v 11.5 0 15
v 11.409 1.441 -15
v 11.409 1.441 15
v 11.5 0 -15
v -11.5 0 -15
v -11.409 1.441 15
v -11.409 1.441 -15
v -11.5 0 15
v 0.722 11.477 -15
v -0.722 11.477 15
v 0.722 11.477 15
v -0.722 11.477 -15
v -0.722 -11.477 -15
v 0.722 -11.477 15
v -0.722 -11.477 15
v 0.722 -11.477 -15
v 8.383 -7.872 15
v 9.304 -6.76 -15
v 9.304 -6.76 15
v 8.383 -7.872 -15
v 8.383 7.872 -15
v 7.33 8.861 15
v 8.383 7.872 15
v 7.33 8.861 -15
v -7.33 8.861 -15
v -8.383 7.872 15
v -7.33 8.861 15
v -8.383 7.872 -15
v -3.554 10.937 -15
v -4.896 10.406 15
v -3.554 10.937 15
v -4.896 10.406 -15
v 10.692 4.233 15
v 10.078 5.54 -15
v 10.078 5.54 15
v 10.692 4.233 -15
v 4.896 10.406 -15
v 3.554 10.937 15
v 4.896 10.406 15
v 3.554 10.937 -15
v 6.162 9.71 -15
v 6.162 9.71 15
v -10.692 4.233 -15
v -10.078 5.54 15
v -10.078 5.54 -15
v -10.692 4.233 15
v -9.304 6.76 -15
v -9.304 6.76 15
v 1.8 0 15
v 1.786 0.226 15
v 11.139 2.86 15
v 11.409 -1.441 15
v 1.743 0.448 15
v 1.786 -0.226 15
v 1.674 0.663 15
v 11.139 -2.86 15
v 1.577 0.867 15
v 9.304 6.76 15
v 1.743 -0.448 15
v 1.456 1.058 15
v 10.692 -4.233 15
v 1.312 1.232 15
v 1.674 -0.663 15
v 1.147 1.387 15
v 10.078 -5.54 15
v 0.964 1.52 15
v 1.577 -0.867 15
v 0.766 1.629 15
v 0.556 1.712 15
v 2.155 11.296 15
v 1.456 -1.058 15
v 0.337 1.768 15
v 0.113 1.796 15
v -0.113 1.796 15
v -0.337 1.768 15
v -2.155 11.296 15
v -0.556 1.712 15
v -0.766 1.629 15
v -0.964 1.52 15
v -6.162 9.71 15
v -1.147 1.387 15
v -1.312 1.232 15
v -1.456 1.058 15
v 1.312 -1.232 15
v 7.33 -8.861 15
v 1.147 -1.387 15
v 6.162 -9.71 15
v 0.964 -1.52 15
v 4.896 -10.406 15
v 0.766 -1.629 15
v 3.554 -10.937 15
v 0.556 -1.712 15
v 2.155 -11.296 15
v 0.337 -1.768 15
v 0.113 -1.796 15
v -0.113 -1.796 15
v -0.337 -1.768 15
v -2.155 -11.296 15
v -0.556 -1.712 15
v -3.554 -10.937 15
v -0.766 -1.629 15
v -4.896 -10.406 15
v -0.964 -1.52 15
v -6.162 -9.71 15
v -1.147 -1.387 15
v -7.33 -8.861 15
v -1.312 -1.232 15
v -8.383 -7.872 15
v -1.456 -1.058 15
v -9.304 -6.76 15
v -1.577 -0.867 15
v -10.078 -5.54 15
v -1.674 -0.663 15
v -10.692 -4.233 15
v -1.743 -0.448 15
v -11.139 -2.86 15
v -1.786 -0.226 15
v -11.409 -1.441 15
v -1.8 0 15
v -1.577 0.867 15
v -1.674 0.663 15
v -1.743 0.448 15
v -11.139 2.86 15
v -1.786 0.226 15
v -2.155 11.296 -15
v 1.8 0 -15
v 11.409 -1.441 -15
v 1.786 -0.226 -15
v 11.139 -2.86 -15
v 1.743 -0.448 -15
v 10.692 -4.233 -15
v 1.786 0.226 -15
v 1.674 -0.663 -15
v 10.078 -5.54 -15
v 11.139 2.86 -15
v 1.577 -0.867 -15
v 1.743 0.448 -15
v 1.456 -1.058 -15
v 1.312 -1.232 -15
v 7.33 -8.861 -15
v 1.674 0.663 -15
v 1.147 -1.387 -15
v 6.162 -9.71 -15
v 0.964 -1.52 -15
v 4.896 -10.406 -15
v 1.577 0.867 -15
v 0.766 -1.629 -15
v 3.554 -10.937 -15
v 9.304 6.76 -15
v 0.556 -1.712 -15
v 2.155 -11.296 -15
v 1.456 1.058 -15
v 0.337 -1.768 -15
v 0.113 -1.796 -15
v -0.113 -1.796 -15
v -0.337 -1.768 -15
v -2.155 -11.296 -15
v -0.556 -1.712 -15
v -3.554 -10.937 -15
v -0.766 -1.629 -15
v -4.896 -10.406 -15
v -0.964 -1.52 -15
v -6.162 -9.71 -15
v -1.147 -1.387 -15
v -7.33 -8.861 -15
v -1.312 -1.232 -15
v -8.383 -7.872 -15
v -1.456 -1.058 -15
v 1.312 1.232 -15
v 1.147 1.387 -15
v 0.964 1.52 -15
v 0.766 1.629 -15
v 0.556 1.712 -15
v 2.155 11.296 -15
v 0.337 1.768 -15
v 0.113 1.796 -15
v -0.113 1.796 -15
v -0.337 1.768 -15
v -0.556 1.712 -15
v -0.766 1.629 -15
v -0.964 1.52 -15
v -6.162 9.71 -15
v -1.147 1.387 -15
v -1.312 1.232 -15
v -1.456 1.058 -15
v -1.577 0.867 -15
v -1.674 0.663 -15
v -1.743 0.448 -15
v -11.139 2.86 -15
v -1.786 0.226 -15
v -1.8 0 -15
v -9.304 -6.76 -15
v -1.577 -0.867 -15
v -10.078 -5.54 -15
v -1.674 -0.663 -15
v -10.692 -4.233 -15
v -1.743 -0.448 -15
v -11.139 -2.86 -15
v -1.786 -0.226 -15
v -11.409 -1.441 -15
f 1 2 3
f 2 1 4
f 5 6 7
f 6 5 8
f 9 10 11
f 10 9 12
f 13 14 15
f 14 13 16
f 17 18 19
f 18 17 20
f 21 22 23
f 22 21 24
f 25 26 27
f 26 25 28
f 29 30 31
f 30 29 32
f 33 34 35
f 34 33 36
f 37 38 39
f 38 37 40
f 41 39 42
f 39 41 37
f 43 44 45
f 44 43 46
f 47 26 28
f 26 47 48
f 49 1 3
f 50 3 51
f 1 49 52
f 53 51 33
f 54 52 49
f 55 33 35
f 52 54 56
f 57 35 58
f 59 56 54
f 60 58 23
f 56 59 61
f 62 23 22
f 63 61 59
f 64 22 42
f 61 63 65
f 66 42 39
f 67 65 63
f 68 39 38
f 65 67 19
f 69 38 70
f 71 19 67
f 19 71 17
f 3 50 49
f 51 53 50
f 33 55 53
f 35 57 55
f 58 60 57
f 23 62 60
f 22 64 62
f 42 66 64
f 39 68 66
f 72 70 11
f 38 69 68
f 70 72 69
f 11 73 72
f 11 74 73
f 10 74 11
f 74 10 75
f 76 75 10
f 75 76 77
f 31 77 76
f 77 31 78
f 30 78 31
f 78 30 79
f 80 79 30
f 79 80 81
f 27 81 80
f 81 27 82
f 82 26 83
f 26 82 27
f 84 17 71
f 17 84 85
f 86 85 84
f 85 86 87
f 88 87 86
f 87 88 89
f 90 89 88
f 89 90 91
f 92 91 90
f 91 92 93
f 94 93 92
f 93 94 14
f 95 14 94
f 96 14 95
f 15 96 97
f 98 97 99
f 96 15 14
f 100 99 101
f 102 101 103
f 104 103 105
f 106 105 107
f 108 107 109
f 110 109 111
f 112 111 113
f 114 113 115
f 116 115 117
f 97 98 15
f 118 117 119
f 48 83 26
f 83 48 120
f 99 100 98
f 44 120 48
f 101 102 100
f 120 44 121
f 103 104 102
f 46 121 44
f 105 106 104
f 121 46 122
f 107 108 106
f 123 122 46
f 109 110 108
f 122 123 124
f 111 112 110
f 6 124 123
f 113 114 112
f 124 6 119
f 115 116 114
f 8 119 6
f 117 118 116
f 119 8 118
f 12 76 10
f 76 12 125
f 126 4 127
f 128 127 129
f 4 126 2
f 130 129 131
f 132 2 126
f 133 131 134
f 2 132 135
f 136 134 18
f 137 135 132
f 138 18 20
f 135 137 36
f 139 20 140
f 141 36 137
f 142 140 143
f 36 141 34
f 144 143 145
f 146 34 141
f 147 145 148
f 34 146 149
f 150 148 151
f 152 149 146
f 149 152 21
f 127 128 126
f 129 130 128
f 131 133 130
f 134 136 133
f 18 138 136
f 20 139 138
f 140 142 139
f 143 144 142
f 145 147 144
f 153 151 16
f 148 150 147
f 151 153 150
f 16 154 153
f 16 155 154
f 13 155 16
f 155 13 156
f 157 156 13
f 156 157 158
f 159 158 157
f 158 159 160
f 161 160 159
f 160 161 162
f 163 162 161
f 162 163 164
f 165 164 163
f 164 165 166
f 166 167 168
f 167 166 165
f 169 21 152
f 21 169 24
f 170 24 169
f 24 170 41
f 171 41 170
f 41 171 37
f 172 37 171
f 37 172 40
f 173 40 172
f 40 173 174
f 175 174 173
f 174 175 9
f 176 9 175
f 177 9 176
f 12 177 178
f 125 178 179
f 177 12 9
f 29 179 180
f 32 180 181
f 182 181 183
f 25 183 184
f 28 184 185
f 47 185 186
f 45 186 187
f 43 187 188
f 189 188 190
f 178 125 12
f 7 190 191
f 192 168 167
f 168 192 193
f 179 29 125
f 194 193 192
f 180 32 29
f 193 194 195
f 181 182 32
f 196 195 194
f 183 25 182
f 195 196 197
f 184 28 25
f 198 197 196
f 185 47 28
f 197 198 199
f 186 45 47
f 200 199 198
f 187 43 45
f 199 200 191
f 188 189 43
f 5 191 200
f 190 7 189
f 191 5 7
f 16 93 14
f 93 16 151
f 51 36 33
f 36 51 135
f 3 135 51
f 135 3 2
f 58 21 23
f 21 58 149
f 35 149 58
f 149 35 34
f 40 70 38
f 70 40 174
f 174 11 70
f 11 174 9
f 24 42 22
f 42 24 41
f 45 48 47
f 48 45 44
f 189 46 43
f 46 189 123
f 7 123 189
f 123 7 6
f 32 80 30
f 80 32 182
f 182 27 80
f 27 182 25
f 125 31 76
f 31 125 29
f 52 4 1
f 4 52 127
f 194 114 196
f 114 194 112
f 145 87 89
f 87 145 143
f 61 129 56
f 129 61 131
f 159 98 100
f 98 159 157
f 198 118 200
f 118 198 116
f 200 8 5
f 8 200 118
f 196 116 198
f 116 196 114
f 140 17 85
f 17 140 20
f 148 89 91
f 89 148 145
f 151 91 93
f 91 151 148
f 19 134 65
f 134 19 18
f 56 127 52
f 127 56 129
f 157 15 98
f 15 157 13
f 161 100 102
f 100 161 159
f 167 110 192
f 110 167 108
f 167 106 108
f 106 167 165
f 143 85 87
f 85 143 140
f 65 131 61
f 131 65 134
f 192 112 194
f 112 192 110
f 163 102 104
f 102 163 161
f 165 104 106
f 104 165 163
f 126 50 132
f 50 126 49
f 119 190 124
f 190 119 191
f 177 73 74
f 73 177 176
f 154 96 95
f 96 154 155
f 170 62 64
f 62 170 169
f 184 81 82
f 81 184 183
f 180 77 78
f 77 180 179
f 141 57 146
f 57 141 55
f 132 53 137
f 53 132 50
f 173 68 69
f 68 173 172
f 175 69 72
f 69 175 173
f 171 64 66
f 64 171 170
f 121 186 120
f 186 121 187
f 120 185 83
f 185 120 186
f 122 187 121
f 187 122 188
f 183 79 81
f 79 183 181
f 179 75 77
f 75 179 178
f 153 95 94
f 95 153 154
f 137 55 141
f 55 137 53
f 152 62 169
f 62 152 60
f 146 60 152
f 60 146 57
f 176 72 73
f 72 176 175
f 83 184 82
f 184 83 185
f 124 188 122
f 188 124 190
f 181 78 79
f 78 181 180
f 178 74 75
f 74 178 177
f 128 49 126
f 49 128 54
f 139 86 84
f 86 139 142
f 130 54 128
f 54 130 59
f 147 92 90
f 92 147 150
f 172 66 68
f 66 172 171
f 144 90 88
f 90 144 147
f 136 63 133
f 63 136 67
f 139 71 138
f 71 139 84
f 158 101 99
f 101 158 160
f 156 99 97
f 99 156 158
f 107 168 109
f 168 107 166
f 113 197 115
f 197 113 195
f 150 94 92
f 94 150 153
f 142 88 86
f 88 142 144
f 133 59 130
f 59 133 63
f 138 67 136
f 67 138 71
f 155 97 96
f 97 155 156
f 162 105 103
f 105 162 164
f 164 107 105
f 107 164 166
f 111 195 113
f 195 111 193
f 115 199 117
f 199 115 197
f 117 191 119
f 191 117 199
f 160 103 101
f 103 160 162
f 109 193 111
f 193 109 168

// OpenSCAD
$fn = 50;


difference() {
	union() {
		translate(v = [0, 0, -15.0000000000]) {
			cylinder(h = 30, r = 11.5000000000);
		}
	}
	union() {
		translate(v = [0, 0, -100.0000000000]) {
			cylinder(h = 200, r = 1.8000000000);
		}
	}
}
